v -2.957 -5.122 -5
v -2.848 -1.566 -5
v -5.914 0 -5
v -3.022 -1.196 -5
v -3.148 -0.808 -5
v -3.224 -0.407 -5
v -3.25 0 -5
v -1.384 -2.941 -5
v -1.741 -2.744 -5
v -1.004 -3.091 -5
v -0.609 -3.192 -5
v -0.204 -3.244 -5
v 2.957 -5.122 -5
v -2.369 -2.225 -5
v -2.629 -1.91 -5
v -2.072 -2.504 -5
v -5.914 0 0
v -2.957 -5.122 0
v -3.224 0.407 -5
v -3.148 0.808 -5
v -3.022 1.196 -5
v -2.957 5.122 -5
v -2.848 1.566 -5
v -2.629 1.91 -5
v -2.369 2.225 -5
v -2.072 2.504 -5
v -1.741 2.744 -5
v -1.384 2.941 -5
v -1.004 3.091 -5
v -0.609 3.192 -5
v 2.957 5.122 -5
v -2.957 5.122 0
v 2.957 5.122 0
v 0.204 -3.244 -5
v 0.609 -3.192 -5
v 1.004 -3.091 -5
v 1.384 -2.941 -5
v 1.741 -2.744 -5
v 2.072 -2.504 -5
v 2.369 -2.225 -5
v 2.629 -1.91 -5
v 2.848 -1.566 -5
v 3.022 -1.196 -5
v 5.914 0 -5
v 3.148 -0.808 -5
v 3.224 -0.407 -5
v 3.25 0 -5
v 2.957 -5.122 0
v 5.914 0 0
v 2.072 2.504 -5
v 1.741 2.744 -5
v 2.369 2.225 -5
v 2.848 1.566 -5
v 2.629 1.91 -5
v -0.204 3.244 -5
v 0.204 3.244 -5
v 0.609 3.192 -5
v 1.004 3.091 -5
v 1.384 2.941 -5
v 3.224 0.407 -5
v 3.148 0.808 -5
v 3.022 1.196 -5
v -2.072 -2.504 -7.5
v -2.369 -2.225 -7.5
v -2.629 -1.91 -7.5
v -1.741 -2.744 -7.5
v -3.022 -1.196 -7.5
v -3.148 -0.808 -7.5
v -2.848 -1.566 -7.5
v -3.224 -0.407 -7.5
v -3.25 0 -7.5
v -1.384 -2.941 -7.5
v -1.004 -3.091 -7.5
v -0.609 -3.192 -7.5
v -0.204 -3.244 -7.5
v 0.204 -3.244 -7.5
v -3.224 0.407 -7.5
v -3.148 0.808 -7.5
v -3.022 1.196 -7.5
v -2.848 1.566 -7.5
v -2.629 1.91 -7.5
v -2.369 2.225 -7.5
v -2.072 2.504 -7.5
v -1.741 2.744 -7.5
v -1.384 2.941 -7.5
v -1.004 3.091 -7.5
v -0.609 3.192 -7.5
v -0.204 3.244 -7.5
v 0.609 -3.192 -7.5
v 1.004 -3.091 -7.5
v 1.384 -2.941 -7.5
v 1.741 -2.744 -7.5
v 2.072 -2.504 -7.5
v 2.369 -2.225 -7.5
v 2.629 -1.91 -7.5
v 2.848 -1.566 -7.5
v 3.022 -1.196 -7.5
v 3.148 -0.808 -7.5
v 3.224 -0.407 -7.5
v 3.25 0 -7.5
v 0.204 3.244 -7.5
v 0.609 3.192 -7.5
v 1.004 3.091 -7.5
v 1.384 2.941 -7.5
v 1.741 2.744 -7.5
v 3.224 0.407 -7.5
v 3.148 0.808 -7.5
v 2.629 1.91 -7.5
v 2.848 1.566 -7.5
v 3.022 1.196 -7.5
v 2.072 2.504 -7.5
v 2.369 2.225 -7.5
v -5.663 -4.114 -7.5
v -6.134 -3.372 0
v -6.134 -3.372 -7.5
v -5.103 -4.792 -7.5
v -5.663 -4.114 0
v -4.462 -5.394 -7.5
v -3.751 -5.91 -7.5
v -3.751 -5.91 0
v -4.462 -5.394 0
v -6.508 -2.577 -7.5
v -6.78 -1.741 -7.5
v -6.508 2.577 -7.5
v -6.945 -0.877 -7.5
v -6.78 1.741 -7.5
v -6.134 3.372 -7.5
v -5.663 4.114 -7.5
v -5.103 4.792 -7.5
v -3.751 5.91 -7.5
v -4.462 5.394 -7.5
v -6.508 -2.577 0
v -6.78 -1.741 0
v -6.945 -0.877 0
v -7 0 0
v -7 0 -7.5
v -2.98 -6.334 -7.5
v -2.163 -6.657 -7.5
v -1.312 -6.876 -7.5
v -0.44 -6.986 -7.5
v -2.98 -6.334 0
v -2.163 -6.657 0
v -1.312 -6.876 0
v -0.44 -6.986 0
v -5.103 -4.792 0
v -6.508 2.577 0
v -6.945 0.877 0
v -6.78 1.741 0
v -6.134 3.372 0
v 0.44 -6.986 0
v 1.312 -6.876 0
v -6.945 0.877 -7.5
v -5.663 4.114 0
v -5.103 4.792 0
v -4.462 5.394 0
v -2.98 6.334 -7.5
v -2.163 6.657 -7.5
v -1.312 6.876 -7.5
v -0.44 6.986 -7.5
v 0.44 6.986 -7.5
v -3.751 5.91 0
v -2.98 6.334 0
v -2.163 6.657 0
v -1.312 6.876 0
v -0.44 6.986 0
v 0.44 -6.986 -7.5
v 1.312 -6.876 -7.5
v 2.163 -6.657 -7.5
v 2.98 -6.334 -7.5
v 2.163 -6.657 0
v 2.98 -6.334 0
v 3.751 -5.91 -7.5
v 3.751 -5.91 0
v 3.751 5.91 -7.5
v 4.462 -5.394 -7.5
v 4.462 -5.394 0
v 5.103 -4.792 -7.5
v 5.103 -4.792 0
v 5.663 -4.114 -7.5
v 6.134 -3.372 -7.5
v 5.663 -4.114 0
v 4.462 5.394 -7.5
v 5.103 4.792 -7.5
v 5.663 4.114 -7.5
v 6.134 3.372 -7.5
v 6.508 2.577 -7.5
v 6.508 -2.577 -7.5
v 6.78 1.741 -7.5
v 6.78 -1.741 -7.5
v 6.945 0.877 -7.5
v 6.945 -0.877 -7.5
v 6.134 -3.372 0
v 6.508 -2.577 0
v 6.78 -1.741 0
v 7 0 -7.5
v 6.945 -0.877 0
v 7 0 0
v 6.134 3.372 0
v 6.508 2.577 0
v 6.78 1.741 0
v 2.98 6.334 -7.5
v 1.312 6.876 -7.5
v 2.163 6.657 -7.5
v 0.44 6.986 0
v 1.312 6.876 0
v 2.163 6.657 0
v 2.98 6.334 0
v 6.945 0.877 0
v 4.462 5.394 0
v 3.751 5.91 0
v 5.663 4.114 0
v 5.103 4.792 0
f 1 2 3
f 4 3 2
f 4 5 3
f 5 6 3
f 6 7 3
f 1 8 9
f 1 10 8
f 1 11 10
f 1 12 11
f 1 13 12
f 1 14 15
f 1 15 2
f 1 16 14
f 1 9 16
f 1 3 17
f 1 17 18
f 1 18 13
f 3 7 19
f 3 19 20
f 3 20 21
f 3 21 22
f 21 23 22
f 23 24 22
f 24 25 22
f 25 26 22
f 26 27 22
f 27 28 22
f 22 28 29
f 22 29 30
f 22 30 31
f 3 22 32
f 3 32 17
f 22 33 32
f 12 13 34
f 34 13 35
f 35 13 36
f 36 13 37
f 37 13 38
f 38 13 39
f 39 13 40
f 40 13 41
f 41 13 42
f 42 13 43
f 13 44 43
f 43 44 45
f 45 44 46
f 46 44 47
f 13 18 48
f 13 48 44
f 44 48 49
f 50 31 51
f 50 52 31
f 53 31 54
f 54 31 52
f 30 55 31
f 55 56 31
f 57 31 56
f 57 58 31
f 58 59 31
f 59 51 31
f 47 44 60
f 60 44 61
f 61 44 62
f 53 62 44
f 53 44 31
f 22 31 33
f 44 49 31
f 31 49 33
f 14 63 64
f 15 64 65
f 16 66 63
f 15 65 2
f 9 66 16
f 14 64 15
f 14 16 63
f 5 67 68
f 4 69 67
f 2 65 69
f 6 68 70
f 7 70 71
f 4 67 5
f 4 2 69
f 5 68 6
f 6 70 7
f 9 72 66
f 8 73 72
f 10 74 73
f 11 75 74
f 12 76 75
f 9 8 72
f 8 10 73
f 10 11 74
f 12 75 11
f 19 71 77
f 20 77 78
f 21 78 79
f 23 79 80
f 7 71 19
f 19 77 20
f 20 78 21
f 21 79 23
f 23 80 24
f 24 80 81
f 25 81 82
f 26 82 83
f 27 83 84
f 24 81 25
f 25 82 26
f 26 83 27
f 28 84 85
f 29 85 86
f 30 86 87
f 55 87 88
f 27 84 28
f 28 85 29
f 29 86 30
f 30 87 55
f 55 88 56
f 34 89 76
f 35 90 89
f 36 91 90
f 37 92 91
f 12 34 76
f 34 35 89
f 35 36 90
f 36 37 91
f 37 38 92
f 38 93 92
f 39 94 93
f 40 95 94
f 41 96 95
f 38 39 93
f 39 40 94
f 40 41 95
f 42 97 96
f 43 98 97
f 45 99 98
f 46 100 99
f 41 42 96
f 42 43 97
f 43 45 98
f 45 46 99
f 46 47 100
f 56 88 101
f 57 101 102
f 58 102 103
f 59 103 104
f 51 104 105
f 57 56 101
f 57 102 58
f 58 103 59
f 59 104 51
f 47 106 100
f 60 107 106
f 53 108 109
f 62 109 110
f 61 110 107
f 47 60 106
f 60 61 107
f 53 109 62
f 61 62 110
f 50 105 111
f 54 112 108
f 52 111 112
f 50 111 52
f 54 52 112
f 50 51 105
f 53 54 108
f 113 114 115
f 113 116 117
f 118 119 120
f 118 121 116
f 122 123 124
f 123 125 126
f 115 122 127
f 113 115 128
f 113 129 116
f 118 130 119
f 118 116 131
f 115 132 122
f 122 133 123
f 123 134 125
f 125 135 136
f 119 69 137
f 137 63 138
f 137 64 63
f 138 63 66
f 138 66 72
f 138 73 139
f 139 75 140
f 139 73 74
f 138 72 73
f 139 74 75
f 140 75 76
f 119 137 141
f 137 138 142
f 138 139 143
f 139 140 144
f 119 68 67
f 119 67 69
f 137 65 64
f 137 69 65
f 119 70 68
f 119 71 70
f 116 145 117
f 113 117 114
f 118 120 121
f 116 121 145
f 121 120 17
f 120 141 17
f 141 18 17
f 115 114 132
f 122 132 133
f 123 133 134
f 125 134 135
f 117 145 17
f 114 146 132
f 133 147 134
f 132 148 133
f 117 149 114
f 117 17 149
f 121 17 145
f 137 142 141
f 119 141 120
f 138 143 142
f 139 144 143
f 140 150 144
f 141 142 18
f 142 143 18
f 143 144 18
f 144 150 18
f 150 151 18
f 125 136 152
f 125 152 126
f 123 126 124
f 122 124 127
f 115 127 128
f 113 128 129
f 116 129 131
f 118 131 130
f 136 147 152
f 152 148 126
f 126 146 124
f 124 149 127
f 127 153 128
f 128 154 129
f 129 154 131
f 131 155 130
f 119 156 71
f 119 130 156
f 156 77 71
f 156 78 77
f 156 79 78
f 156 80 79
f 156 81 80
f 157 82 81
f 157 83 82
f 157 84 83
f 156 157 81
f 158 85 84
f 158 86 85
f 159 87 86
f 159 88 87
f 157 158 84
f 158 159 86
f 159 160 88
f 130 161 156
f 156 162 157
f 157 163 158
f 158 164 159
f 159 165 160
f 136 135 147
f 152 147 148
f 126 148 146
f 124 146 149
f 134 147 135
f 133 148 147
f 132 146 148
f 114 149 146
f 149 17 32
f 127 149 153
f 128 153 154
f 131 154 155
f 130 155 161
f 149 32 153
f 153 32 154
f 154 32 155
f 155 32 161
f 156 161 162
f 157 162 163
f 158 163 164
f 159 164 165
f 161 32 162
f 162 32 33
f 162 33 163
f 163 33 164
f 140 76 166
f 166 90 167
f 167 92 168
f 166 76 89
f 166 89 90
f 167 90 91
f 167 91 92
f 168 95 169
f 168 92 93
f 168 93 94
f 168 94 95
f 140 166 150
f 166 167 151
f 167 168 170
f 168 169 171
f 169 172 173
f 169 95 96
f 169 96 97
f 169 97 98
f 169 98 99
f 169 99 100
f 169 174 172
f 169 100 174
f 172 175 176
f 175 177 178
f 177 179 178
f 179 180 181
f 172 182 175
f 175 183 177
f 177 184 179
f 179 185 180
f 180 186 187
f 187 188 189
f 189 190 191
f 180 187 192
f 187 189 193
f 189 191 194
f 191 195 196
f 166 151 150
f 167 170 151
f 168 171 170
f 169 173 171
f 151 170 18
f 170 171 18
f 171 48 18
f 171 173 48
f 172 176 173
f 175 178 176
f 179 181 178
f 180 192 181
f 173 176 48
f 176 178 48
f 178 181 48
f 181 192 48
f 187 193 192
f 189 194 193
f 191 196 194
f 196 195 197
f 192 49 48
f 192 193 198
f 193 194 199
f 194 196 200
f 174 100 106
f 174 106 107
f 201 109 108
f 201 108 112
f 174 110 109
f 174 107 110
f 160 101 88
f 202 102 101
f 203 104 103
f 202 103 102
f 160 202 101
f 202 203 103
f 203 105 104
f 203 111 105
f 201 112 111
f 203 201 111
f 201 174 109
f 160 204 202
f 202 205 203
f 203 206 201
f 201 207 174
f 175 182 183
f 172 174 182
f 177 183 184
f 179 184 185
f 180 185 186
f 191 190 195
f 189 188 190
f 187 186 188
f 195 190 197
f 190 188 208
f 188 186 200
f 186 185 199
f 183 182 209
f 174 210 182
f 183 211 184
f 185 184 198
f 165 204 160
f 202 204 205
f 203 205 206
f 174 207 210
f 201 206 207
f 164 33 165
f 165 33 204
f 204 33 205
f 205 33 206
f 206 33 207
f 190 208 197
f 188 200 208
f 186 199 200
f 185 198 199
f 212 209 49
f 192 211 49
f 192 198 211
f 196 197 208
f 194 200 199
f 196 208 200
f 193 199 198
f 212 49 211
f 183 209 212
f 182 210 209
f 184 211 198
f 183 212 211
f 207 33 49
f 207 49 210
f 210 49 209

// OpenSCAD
$fn = 50;


difference() {
	union() {
		translate(v = [0, 0, -7.5000000000]) {
			cylinder(h = 7.5000000000, r = 7.0000000000);
		}
	}
	union() {
		translate(v = [0, 0, 0]) {
			rotate(a = [0, 0, 0]) {
				difference() {
					union() {
						translate(v = [0, 0, -5]) {
							linear_extrude(height = 5) {
								polygon(points = [[5.9142500000, 0.0000000000], [2.9571250000, 5.1218907443], [-2.9571250000, 5.1218907443], [-5.9142500000, 0.0000000000], [-2.9571250000, -5.1218907443], [2.9571250000, -5.1218907443]]);
							}
						}
					}
					union();
				}
			}
		}
		#translate(v = [0, 0, -100.0000000000]) {
			cylinder(h = 200, r = 3.2500000000);
		}
	}
}
